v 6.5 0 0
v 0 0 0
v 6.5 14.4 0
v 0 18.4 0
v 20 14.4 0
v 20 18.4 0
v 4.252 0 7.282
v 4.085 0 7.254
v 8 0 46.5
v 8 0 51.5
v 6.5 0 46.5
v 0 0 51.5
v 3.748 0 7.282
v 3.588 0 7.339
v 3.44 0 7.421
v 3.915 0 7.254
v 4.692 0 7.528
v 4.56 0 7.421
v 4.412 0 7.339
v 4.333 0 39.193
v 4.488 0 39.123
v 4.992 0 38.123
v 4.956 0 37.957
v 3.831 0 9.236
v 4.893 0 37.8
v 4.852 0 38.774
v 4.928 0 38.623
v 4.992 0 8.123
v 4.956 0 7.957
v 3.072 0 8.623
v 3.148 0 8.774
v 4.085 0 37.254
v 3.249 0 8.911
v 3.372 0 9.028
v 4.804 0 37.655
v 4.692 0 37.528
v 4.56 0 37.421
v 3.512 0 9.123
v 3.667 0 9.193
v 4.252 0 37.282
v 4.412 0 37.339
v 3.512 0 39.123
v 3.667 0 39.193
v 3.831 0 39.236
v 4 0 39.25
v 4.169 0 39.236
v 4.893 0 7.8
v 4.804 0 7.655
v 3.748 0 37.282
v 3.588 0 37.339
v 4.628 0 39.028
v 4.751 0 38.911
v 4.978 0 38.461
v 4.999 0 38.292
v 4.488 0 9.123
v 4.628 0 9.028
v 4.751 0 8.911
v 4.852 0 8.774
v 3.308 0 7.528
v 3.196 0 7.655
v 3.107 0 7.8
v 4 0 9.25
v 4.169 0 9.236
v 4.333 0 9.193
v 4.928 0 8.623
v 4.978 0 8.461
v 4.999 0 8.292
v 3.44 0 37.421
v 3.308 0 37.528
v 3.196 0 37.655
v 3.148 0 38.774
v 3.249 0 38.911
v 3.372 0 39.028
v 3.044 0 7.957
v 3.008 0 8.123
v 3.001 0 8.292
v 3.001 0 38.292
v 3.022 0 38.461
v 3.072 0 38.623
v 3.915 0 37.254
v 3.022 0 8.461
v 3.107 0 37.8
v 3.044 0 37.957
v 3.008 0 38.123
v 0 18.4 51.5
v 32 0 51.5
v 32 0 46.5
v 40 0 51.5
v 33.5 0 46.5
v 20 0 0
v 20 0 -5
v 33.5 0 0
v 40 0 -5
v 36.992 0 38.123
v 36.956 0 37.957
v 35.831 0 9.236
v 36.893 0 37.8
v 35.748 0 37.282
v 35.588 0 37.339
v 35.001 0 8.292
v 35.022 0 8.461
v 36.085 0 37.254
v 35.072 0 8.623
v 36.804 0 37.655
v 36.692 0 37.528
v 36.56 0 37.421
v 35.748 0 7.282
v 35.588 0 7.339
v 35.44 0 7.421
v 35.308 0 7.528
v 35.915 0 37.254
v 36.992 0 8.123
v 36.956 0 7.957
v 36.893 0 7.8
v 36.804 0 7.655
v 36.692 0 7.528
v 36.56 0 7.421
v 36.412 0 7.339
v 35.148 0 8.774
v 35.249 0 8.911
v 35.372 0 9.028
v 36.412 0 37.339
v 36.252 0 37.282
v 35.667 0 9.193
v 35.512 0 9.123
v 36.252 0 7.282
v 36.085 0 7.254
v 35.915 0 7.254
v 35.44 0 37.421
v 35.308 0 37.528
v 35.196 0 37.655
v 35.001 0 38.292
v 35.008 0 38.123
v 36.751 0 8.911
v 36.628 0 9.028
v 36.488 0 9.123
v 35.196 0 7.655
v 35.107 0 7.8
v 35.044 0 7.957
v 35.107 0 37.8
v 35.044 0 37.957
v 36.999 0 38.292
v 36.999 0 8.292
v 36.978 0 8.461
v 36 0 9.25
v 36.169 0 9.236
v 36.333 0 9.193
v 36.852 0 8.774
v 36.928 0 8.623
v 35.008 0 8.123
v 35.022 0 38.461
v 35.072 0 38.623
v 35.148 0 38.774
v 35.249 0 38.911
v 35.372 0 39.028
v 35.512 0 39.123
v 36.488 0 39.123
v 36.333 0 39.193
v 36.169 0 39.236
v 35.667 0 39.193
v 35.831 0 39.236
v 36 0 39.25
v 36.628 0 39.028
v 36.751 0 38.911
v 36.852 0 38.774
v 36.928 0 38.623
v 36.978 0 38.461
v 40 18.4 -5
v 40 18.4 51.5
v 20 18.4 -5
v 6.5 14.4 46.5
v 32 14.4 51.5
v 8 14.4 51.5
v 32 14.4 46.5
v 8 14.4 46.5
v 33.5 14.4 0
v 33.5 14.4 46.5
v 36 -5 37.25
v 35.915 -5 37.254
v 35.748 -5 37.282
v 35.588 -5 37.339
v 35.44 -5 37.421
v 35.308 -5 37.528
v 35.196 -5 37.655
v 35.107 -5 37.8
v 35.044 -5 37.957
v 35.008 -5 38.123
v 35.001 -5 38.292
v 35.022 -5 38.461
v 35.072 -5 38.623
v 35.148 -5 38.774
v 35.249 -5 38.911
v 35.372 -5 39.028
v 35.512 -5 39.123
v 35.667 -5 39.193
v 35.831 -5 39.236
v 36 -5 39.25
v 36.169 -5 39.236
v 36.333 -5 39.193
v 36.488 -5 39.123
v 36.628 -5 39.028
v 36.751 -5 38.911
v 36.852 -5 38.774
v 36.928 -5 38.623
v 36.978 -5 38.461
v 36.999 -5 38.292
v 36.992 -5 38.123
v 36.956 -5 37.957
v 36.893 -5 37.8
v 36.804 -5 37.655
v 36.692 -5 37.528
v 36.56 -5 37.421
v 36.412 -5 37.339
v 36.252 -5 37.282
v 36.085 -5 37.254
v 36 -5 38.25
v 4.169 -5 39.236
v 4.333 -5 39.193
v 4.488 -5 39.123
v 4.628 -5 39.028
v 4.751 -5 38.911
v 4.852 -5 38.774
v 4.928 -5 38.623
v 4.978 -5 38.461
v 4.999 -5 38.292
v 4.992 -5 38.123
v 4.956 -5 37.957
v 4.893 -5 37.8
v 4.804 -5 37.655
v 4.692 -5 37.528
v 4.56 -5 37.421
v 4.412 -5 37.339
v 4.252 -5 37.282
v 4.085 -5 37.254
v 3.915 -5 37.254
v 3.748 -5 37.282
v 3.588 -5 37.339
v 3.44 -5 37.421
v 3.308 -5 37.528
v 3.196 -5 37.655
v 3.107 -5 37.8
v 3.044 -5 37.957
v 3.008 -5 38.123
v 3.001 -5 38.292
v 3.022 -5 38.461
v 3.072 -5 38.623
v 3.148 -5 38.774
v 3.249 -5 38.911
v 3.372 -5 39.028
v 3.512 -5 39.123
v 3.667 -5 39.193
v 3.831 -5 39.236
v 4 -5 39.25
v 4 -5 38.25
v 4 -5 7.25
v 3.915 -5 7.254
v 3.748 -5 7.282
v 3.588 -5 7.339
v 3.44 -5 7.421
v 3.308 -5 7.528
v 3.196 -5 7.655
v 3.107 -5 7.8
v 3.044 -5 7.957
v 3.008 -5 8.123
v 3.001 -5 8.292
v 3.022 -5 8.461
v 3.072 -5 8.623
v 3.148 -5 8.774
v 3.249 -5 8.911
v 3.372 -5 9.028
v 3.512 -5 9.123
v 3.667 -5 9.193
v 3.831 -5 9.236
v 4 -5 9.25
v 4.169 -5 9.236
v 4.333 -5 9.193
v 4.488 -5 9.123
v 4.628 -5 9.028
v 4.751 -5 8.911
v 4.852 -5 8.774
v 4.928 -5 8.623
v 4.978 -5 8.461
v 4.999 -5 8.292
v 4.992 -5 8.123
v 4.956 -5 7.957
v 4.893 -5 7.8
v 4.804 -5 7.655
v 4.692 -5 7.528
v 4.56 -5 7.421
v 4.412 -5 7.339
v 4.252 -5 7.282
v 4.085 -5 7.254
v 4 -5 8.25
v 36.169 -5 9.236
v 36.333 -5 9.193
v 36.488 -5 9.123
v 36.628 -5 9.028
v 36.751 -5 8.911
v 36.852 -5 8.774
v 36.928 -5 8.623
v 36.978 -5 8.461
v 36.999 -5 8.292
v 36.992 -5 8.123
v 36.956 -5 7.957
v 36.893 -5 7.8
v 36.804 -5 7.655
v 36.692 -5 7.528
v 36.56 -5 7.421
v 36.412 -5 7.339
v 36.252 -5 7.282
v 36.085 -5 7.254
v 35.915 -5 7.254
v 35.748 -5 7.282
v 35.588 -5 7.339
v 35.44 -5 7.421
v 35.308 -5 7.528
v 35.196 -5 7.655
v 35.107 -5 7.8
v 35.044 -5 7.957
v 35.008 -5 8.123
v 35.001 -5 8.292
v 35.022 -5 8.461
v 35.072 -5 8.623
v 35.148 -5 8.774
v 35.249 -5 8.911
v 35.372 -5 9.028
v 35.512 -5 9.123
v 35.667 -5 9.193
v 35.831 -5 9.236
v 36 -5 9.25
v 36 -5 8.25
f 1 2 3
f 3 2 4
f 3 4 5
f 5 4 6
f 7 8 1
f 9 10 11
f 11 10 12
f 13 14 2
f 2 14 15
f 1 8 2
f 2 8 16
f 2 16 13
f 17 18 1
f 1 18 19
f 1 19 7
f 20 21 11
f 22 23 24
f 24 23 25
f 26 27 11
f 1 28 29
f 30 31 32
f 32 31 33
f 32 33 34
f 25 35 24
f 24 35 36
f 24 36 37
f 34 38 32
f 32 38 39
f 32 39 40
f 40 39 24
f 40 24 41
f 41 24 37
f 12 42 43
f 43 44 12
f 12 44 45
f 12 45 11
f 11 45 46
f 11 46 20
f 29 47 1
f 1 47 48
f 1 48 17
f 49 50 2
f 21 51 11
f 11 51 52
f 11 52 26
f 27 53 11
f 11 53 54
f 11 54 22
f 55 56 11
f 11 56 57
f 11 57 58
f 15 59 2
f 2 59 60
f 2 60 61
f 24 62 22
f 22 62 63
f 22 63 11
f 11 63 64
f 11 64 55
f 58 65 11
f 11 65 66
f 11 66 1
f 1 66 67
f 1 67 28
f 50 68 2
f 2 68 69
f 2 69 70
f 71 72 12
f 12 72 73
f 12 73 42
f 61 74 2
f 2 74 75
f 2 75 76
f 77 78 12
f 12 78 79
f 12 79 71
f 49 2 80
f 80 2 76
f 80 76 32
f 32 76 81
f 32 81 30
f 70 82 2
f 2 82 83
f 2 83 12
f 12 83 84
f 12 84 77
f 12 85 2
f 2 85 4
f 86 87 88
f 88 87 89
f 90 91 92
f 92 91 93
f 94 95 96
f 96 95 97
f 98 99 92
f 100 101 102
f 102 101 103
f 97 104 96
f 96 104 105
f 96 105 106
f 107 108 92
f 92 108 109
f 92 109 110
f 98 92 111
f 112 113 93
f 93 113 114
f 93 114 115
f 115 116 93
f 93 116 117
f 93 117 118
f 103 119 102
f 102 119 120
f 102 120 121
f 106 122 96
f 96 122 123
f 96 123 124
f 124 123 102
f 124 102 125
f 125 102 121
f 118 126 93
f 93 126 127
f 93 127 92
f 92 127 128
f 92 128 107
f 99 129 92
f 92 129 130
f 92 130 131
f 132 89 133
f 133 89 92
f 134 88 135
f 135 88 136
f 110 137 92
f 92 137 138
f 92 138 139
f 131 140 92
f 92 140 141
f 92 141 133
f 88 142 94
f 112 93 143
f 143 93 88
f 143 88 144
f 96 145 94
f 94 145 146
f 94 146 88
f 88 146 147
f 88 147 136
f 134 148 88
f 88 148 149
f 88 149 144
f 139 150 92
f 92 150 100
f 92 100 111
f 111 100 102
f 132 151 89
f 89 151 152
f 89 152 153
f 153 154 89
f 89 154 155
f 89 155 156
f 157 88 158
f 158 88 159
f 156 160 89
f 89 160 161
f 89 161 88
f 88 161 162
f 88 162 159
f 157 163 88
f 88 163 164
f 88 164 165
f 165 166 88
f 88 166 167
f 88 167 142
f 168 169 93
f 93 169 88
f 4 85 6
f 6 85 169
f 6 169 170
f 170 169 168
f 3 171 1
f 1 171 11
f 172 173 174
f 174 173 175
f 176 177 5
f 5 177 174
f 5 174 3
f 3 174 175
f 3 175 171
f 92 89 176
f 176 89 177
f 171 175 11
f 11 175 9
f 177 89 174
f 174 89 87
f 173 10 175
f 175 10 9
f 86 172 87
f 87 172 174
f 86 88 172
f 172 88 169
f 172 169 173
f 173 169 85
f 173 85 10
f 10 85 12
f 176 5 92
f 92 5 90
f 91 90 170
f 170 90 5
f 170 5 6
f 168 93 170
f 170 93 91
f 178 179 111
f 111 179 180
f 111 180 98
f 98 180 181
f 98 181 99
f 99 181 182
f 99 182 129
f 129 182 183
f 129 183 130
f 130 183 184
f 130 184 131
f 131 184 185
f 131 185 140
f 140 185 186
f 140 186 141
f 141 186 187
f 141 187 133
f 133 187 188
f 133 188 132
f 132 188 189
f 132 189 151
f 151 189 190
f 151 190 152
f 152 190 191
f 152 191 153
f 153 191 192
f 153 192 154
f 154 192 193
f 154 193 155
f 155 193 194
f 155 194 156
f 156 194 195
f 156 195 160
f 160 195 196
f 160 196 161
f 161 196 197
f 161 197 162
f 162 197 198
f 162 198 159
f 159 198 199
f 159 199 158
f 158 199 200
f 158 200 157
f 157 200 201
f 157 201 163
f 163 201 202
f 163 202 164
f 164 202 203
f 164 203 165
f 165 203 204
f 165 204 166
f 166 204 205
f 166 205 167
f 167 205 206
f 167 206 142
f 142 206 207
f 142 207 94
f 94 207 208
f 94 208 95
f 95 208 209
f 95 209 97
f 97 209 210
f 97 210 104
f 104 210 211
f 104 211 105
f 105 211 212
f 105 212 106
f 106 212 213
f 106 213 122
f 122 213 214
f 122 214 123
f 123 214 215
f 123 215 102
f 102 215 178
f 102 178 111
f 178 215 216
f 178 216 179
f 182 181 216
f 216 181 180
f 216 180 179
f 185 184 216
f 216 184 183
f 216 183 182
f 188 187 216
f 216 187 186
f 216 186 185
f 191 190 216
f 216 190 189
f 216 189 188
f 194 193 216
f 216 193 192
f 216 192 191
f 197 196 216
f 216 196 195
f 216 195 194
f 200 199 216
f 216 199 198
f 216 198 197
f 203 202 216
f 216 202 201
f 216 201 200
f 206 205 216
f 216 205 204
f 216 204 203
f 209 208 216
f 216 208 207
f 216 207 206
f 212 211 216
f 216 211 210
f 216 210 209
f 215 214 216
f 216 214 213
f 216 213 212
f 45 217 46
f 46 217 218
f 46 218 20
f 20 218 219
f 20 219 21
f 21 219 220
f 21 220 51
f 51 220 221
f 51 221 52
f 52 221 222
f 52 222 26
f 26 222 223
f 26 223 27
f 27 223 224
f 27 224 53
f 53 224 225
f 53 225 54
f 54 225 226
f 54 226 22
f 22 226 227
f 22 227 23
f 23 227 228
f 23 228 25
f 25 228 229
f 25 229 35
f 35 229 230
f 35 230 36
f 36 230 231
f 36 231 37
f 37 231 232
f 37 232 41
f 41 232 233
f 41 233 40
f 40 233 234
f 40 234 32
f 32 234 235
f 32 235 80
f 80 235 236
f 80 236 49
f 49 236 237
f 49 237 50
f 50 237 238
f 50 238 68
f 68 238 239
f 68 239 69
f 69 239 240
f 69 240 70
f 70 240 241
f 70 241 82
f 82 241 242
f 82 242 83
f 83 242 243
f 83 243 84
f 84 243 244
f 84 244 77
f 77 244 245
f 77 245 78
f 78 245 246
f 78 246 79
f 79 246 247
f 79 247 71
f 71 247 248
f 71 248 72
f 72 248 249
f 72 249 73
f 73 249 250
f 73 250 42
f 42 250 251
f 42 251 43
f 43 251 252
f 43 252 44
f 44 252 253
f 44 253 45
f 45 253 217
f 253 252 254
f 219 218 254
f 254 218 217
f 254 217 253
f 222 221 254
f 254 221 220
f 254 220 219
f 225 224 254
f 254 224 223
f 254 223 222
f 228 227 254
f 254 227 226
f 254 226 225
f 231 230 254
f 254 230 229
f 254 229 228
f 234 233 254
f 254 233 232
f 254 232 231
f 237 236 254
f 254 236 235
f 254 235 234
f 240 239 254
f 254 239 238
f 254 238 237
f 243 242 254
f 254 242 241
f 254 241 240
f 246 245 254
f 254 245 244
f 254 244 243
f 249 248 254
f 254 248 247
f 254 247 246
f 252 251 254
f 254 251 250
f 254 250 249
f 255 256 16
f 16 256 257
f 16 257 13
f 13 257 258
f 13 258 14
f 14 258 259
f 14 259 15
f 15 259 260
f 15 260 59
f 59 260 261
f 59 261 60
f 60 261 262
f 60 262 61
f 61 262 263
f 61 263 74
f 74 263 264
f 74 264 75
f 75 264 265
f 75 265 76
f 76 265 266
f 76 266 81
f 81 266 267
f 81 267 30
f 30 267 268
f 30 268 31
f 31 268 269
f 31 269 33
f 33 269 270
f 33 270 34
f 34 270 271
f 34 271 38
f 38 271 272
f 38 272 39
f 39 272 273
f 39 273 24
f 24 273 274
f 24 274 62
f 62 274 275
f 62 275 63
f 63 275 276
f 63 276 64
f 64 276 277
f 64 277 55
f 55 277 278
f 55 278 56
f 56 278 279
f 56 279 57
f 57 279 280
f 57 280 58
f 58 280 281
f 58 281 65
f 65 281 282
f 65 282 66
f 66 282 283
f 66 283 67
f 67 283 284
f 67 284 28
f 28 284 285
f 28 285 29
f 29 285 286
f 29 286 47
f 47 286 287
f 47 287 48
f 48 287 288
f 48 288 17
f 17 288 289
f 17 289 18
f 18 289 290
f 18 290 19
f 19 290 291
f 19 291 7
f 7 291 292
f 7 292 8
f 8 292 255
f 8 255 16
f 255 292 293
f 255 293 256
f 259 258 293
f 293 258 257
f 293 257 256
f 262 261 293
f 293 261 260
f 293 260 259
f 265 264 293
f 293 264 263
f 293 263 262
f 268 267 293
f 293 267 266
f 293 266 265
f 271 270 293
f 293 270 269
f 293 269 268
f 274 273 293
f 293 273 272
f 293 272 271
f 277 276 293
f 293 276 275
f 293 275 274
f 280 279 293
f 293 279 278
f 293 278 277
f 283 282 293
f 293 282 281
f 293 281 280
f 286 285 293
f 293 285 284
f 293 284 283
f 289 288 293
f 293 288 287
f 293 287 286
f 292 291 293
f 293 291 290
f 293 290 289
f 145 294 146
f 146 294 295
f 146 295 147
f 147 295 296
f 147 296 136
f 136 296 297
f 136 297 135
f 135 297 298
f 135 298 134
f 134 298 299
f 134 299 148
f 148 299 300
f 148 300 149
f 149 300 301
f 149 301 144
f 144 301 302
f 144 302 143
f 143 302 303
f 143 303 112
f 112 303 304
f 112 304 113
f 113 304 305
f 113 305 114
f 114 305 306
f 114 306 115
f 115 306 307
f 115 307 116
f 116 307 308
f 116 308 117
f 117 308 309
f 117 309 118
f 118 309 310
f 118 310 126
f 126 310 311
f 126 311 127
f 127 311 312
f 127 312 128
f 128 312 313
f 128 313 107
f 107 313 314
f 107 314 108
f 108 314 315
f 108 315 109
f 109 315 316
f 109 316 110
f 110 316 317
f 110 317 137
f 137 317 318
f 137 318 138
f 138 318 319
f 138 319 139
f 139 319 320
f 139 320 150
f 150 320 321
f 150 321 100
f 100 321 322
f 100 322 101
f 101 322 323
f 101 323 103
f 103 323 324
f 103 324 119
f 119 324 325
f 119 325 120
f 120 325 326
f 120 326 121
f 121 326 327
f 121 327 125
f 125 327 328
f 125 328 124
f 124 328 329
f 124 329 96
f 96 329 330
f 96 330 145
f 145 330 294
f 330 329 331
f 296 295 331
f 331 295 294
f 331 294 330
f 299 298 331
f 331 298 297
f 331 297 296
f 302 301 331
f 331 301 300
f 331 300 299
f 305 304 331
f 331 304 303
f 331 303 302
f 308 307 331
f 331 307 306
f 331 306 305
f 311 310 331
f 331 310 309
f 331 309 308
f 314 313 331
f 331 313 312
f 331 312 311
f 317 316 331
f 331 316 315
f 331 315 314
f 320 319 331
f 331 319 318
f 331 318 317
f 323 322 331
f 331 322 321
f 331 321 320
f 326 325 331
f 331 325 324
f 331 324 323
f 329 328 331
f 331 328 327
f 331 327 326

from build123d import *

# Parameters (mm, degrees)
SKETCH_1_W               = 40
SKETCH_1_H               = 18.4
EXTRUDE_1_DEPTH          = 46.5
CUT_EXTRUDE_1_DEPTH      = 65.037567099
CUT_EXTRUDE_1_DEPTH_BACK = 65.037567099
SKETCH_2_W               = 27
SKETCH_2_H               = 14.4
SKETCH_3_W               = 1.5
SKETCH_3_H               = 14.4
EXTRUDE_2_DEPTH          = 5
SKETCH_4_W               = 13.5
SKETCH_4_H               = 14.4
EXTRUDE_3_DEPTH          = 5
SKETCH_6_R               = 1
EXTRUDE_4_DEPTH          = 5


with BuildPart() as part:
    # 스케치1 → 보스-돌출1 (new body)
    with BuildSketch(Plane.XY):
        with Locations((20, 9.2)):
            Rectangle(SKETCH_1_W, SKETCH_1_H)
    extrude(amount=EXTRUDE_1_DEPTH)

    # 스케치2 → 컷-돌출1 (cut, two sides: drawn at the far end of the back side and taken through both)
    with BuildSketch(Plane.XY.offset(46.5).offset(-CUT_EXTRUDE_1_DEPTH_BACK)):
        with Locations((20, 7.2)):
            Rectangle(SKETCH_2_W, SKETCH_2_H)
    extrude(amount=CUT_EXTRUDE_1_DEPTH + CUT_EXTRUDE_1_DEPTH_BACK, mode=Mode.SUBTRACT)

    # 스케치3 → 보스-돌출2 (add)
    with BuildSketch(Plane.XY.offset(46.5)):
        Polygon((0, 18.4), (0, 0), (6.5, 0), (6.5, 14.4), (33.5, 14.4), (33.5, 0), (40, 0), (40, 18.4), align=None)
        with Locations((7.25, 7.2)):
            Rectangle(SKETCH_3_W, SKETCH_3_H)
        with Locations((32.75, 7.2)):
            Rectangle(SKETCH_3_W, SKETCH_3_H)
    extrude(amount=EXTRUDE_2_DEPTH)

    # 스케치4 → 보스-돌출3 (add)
    with BuildSketch(Plane(origin=(0, 0, 0), x_dir=(-1, 0, 0), z_dir=(0, 0, -1))):
        Polygon((-20, 14.4), (-20, 18.4), (-40, 18.4), (-40, 0), (-33.5, 0), (-33.5, 14.4), align=None)
        with Locations((-26.75, 7.2)):
            Rectangle(SKETCH_4_W, SKETCH_4_H)
    extrude(amount=EXTRUDE_3_DEPTH)

    # 스케치6 → 보스-돌출4 (add)
    with BuildSketch(Plane.XZ):
        with Locations(Location((36, 38.25, 0), (0, 0, 90))):
            Circle(SKETCH_6_R)
        with Locations(Location((4, 38.25, 0), (0, 0, 90))):
            Circle(SKETCH_6_R)
        with Locations(Location((4, 8.25, 0), (0, 0, 90))):
            Circle(SKETCH_6_R)
        with Locations(Location((36, 8.25, 0), (0, 0, 90))):
            Circle(SKETCH_6_R)
    extrude(amount=EXTRUDE_4_DEPTH)


solid = part.part
